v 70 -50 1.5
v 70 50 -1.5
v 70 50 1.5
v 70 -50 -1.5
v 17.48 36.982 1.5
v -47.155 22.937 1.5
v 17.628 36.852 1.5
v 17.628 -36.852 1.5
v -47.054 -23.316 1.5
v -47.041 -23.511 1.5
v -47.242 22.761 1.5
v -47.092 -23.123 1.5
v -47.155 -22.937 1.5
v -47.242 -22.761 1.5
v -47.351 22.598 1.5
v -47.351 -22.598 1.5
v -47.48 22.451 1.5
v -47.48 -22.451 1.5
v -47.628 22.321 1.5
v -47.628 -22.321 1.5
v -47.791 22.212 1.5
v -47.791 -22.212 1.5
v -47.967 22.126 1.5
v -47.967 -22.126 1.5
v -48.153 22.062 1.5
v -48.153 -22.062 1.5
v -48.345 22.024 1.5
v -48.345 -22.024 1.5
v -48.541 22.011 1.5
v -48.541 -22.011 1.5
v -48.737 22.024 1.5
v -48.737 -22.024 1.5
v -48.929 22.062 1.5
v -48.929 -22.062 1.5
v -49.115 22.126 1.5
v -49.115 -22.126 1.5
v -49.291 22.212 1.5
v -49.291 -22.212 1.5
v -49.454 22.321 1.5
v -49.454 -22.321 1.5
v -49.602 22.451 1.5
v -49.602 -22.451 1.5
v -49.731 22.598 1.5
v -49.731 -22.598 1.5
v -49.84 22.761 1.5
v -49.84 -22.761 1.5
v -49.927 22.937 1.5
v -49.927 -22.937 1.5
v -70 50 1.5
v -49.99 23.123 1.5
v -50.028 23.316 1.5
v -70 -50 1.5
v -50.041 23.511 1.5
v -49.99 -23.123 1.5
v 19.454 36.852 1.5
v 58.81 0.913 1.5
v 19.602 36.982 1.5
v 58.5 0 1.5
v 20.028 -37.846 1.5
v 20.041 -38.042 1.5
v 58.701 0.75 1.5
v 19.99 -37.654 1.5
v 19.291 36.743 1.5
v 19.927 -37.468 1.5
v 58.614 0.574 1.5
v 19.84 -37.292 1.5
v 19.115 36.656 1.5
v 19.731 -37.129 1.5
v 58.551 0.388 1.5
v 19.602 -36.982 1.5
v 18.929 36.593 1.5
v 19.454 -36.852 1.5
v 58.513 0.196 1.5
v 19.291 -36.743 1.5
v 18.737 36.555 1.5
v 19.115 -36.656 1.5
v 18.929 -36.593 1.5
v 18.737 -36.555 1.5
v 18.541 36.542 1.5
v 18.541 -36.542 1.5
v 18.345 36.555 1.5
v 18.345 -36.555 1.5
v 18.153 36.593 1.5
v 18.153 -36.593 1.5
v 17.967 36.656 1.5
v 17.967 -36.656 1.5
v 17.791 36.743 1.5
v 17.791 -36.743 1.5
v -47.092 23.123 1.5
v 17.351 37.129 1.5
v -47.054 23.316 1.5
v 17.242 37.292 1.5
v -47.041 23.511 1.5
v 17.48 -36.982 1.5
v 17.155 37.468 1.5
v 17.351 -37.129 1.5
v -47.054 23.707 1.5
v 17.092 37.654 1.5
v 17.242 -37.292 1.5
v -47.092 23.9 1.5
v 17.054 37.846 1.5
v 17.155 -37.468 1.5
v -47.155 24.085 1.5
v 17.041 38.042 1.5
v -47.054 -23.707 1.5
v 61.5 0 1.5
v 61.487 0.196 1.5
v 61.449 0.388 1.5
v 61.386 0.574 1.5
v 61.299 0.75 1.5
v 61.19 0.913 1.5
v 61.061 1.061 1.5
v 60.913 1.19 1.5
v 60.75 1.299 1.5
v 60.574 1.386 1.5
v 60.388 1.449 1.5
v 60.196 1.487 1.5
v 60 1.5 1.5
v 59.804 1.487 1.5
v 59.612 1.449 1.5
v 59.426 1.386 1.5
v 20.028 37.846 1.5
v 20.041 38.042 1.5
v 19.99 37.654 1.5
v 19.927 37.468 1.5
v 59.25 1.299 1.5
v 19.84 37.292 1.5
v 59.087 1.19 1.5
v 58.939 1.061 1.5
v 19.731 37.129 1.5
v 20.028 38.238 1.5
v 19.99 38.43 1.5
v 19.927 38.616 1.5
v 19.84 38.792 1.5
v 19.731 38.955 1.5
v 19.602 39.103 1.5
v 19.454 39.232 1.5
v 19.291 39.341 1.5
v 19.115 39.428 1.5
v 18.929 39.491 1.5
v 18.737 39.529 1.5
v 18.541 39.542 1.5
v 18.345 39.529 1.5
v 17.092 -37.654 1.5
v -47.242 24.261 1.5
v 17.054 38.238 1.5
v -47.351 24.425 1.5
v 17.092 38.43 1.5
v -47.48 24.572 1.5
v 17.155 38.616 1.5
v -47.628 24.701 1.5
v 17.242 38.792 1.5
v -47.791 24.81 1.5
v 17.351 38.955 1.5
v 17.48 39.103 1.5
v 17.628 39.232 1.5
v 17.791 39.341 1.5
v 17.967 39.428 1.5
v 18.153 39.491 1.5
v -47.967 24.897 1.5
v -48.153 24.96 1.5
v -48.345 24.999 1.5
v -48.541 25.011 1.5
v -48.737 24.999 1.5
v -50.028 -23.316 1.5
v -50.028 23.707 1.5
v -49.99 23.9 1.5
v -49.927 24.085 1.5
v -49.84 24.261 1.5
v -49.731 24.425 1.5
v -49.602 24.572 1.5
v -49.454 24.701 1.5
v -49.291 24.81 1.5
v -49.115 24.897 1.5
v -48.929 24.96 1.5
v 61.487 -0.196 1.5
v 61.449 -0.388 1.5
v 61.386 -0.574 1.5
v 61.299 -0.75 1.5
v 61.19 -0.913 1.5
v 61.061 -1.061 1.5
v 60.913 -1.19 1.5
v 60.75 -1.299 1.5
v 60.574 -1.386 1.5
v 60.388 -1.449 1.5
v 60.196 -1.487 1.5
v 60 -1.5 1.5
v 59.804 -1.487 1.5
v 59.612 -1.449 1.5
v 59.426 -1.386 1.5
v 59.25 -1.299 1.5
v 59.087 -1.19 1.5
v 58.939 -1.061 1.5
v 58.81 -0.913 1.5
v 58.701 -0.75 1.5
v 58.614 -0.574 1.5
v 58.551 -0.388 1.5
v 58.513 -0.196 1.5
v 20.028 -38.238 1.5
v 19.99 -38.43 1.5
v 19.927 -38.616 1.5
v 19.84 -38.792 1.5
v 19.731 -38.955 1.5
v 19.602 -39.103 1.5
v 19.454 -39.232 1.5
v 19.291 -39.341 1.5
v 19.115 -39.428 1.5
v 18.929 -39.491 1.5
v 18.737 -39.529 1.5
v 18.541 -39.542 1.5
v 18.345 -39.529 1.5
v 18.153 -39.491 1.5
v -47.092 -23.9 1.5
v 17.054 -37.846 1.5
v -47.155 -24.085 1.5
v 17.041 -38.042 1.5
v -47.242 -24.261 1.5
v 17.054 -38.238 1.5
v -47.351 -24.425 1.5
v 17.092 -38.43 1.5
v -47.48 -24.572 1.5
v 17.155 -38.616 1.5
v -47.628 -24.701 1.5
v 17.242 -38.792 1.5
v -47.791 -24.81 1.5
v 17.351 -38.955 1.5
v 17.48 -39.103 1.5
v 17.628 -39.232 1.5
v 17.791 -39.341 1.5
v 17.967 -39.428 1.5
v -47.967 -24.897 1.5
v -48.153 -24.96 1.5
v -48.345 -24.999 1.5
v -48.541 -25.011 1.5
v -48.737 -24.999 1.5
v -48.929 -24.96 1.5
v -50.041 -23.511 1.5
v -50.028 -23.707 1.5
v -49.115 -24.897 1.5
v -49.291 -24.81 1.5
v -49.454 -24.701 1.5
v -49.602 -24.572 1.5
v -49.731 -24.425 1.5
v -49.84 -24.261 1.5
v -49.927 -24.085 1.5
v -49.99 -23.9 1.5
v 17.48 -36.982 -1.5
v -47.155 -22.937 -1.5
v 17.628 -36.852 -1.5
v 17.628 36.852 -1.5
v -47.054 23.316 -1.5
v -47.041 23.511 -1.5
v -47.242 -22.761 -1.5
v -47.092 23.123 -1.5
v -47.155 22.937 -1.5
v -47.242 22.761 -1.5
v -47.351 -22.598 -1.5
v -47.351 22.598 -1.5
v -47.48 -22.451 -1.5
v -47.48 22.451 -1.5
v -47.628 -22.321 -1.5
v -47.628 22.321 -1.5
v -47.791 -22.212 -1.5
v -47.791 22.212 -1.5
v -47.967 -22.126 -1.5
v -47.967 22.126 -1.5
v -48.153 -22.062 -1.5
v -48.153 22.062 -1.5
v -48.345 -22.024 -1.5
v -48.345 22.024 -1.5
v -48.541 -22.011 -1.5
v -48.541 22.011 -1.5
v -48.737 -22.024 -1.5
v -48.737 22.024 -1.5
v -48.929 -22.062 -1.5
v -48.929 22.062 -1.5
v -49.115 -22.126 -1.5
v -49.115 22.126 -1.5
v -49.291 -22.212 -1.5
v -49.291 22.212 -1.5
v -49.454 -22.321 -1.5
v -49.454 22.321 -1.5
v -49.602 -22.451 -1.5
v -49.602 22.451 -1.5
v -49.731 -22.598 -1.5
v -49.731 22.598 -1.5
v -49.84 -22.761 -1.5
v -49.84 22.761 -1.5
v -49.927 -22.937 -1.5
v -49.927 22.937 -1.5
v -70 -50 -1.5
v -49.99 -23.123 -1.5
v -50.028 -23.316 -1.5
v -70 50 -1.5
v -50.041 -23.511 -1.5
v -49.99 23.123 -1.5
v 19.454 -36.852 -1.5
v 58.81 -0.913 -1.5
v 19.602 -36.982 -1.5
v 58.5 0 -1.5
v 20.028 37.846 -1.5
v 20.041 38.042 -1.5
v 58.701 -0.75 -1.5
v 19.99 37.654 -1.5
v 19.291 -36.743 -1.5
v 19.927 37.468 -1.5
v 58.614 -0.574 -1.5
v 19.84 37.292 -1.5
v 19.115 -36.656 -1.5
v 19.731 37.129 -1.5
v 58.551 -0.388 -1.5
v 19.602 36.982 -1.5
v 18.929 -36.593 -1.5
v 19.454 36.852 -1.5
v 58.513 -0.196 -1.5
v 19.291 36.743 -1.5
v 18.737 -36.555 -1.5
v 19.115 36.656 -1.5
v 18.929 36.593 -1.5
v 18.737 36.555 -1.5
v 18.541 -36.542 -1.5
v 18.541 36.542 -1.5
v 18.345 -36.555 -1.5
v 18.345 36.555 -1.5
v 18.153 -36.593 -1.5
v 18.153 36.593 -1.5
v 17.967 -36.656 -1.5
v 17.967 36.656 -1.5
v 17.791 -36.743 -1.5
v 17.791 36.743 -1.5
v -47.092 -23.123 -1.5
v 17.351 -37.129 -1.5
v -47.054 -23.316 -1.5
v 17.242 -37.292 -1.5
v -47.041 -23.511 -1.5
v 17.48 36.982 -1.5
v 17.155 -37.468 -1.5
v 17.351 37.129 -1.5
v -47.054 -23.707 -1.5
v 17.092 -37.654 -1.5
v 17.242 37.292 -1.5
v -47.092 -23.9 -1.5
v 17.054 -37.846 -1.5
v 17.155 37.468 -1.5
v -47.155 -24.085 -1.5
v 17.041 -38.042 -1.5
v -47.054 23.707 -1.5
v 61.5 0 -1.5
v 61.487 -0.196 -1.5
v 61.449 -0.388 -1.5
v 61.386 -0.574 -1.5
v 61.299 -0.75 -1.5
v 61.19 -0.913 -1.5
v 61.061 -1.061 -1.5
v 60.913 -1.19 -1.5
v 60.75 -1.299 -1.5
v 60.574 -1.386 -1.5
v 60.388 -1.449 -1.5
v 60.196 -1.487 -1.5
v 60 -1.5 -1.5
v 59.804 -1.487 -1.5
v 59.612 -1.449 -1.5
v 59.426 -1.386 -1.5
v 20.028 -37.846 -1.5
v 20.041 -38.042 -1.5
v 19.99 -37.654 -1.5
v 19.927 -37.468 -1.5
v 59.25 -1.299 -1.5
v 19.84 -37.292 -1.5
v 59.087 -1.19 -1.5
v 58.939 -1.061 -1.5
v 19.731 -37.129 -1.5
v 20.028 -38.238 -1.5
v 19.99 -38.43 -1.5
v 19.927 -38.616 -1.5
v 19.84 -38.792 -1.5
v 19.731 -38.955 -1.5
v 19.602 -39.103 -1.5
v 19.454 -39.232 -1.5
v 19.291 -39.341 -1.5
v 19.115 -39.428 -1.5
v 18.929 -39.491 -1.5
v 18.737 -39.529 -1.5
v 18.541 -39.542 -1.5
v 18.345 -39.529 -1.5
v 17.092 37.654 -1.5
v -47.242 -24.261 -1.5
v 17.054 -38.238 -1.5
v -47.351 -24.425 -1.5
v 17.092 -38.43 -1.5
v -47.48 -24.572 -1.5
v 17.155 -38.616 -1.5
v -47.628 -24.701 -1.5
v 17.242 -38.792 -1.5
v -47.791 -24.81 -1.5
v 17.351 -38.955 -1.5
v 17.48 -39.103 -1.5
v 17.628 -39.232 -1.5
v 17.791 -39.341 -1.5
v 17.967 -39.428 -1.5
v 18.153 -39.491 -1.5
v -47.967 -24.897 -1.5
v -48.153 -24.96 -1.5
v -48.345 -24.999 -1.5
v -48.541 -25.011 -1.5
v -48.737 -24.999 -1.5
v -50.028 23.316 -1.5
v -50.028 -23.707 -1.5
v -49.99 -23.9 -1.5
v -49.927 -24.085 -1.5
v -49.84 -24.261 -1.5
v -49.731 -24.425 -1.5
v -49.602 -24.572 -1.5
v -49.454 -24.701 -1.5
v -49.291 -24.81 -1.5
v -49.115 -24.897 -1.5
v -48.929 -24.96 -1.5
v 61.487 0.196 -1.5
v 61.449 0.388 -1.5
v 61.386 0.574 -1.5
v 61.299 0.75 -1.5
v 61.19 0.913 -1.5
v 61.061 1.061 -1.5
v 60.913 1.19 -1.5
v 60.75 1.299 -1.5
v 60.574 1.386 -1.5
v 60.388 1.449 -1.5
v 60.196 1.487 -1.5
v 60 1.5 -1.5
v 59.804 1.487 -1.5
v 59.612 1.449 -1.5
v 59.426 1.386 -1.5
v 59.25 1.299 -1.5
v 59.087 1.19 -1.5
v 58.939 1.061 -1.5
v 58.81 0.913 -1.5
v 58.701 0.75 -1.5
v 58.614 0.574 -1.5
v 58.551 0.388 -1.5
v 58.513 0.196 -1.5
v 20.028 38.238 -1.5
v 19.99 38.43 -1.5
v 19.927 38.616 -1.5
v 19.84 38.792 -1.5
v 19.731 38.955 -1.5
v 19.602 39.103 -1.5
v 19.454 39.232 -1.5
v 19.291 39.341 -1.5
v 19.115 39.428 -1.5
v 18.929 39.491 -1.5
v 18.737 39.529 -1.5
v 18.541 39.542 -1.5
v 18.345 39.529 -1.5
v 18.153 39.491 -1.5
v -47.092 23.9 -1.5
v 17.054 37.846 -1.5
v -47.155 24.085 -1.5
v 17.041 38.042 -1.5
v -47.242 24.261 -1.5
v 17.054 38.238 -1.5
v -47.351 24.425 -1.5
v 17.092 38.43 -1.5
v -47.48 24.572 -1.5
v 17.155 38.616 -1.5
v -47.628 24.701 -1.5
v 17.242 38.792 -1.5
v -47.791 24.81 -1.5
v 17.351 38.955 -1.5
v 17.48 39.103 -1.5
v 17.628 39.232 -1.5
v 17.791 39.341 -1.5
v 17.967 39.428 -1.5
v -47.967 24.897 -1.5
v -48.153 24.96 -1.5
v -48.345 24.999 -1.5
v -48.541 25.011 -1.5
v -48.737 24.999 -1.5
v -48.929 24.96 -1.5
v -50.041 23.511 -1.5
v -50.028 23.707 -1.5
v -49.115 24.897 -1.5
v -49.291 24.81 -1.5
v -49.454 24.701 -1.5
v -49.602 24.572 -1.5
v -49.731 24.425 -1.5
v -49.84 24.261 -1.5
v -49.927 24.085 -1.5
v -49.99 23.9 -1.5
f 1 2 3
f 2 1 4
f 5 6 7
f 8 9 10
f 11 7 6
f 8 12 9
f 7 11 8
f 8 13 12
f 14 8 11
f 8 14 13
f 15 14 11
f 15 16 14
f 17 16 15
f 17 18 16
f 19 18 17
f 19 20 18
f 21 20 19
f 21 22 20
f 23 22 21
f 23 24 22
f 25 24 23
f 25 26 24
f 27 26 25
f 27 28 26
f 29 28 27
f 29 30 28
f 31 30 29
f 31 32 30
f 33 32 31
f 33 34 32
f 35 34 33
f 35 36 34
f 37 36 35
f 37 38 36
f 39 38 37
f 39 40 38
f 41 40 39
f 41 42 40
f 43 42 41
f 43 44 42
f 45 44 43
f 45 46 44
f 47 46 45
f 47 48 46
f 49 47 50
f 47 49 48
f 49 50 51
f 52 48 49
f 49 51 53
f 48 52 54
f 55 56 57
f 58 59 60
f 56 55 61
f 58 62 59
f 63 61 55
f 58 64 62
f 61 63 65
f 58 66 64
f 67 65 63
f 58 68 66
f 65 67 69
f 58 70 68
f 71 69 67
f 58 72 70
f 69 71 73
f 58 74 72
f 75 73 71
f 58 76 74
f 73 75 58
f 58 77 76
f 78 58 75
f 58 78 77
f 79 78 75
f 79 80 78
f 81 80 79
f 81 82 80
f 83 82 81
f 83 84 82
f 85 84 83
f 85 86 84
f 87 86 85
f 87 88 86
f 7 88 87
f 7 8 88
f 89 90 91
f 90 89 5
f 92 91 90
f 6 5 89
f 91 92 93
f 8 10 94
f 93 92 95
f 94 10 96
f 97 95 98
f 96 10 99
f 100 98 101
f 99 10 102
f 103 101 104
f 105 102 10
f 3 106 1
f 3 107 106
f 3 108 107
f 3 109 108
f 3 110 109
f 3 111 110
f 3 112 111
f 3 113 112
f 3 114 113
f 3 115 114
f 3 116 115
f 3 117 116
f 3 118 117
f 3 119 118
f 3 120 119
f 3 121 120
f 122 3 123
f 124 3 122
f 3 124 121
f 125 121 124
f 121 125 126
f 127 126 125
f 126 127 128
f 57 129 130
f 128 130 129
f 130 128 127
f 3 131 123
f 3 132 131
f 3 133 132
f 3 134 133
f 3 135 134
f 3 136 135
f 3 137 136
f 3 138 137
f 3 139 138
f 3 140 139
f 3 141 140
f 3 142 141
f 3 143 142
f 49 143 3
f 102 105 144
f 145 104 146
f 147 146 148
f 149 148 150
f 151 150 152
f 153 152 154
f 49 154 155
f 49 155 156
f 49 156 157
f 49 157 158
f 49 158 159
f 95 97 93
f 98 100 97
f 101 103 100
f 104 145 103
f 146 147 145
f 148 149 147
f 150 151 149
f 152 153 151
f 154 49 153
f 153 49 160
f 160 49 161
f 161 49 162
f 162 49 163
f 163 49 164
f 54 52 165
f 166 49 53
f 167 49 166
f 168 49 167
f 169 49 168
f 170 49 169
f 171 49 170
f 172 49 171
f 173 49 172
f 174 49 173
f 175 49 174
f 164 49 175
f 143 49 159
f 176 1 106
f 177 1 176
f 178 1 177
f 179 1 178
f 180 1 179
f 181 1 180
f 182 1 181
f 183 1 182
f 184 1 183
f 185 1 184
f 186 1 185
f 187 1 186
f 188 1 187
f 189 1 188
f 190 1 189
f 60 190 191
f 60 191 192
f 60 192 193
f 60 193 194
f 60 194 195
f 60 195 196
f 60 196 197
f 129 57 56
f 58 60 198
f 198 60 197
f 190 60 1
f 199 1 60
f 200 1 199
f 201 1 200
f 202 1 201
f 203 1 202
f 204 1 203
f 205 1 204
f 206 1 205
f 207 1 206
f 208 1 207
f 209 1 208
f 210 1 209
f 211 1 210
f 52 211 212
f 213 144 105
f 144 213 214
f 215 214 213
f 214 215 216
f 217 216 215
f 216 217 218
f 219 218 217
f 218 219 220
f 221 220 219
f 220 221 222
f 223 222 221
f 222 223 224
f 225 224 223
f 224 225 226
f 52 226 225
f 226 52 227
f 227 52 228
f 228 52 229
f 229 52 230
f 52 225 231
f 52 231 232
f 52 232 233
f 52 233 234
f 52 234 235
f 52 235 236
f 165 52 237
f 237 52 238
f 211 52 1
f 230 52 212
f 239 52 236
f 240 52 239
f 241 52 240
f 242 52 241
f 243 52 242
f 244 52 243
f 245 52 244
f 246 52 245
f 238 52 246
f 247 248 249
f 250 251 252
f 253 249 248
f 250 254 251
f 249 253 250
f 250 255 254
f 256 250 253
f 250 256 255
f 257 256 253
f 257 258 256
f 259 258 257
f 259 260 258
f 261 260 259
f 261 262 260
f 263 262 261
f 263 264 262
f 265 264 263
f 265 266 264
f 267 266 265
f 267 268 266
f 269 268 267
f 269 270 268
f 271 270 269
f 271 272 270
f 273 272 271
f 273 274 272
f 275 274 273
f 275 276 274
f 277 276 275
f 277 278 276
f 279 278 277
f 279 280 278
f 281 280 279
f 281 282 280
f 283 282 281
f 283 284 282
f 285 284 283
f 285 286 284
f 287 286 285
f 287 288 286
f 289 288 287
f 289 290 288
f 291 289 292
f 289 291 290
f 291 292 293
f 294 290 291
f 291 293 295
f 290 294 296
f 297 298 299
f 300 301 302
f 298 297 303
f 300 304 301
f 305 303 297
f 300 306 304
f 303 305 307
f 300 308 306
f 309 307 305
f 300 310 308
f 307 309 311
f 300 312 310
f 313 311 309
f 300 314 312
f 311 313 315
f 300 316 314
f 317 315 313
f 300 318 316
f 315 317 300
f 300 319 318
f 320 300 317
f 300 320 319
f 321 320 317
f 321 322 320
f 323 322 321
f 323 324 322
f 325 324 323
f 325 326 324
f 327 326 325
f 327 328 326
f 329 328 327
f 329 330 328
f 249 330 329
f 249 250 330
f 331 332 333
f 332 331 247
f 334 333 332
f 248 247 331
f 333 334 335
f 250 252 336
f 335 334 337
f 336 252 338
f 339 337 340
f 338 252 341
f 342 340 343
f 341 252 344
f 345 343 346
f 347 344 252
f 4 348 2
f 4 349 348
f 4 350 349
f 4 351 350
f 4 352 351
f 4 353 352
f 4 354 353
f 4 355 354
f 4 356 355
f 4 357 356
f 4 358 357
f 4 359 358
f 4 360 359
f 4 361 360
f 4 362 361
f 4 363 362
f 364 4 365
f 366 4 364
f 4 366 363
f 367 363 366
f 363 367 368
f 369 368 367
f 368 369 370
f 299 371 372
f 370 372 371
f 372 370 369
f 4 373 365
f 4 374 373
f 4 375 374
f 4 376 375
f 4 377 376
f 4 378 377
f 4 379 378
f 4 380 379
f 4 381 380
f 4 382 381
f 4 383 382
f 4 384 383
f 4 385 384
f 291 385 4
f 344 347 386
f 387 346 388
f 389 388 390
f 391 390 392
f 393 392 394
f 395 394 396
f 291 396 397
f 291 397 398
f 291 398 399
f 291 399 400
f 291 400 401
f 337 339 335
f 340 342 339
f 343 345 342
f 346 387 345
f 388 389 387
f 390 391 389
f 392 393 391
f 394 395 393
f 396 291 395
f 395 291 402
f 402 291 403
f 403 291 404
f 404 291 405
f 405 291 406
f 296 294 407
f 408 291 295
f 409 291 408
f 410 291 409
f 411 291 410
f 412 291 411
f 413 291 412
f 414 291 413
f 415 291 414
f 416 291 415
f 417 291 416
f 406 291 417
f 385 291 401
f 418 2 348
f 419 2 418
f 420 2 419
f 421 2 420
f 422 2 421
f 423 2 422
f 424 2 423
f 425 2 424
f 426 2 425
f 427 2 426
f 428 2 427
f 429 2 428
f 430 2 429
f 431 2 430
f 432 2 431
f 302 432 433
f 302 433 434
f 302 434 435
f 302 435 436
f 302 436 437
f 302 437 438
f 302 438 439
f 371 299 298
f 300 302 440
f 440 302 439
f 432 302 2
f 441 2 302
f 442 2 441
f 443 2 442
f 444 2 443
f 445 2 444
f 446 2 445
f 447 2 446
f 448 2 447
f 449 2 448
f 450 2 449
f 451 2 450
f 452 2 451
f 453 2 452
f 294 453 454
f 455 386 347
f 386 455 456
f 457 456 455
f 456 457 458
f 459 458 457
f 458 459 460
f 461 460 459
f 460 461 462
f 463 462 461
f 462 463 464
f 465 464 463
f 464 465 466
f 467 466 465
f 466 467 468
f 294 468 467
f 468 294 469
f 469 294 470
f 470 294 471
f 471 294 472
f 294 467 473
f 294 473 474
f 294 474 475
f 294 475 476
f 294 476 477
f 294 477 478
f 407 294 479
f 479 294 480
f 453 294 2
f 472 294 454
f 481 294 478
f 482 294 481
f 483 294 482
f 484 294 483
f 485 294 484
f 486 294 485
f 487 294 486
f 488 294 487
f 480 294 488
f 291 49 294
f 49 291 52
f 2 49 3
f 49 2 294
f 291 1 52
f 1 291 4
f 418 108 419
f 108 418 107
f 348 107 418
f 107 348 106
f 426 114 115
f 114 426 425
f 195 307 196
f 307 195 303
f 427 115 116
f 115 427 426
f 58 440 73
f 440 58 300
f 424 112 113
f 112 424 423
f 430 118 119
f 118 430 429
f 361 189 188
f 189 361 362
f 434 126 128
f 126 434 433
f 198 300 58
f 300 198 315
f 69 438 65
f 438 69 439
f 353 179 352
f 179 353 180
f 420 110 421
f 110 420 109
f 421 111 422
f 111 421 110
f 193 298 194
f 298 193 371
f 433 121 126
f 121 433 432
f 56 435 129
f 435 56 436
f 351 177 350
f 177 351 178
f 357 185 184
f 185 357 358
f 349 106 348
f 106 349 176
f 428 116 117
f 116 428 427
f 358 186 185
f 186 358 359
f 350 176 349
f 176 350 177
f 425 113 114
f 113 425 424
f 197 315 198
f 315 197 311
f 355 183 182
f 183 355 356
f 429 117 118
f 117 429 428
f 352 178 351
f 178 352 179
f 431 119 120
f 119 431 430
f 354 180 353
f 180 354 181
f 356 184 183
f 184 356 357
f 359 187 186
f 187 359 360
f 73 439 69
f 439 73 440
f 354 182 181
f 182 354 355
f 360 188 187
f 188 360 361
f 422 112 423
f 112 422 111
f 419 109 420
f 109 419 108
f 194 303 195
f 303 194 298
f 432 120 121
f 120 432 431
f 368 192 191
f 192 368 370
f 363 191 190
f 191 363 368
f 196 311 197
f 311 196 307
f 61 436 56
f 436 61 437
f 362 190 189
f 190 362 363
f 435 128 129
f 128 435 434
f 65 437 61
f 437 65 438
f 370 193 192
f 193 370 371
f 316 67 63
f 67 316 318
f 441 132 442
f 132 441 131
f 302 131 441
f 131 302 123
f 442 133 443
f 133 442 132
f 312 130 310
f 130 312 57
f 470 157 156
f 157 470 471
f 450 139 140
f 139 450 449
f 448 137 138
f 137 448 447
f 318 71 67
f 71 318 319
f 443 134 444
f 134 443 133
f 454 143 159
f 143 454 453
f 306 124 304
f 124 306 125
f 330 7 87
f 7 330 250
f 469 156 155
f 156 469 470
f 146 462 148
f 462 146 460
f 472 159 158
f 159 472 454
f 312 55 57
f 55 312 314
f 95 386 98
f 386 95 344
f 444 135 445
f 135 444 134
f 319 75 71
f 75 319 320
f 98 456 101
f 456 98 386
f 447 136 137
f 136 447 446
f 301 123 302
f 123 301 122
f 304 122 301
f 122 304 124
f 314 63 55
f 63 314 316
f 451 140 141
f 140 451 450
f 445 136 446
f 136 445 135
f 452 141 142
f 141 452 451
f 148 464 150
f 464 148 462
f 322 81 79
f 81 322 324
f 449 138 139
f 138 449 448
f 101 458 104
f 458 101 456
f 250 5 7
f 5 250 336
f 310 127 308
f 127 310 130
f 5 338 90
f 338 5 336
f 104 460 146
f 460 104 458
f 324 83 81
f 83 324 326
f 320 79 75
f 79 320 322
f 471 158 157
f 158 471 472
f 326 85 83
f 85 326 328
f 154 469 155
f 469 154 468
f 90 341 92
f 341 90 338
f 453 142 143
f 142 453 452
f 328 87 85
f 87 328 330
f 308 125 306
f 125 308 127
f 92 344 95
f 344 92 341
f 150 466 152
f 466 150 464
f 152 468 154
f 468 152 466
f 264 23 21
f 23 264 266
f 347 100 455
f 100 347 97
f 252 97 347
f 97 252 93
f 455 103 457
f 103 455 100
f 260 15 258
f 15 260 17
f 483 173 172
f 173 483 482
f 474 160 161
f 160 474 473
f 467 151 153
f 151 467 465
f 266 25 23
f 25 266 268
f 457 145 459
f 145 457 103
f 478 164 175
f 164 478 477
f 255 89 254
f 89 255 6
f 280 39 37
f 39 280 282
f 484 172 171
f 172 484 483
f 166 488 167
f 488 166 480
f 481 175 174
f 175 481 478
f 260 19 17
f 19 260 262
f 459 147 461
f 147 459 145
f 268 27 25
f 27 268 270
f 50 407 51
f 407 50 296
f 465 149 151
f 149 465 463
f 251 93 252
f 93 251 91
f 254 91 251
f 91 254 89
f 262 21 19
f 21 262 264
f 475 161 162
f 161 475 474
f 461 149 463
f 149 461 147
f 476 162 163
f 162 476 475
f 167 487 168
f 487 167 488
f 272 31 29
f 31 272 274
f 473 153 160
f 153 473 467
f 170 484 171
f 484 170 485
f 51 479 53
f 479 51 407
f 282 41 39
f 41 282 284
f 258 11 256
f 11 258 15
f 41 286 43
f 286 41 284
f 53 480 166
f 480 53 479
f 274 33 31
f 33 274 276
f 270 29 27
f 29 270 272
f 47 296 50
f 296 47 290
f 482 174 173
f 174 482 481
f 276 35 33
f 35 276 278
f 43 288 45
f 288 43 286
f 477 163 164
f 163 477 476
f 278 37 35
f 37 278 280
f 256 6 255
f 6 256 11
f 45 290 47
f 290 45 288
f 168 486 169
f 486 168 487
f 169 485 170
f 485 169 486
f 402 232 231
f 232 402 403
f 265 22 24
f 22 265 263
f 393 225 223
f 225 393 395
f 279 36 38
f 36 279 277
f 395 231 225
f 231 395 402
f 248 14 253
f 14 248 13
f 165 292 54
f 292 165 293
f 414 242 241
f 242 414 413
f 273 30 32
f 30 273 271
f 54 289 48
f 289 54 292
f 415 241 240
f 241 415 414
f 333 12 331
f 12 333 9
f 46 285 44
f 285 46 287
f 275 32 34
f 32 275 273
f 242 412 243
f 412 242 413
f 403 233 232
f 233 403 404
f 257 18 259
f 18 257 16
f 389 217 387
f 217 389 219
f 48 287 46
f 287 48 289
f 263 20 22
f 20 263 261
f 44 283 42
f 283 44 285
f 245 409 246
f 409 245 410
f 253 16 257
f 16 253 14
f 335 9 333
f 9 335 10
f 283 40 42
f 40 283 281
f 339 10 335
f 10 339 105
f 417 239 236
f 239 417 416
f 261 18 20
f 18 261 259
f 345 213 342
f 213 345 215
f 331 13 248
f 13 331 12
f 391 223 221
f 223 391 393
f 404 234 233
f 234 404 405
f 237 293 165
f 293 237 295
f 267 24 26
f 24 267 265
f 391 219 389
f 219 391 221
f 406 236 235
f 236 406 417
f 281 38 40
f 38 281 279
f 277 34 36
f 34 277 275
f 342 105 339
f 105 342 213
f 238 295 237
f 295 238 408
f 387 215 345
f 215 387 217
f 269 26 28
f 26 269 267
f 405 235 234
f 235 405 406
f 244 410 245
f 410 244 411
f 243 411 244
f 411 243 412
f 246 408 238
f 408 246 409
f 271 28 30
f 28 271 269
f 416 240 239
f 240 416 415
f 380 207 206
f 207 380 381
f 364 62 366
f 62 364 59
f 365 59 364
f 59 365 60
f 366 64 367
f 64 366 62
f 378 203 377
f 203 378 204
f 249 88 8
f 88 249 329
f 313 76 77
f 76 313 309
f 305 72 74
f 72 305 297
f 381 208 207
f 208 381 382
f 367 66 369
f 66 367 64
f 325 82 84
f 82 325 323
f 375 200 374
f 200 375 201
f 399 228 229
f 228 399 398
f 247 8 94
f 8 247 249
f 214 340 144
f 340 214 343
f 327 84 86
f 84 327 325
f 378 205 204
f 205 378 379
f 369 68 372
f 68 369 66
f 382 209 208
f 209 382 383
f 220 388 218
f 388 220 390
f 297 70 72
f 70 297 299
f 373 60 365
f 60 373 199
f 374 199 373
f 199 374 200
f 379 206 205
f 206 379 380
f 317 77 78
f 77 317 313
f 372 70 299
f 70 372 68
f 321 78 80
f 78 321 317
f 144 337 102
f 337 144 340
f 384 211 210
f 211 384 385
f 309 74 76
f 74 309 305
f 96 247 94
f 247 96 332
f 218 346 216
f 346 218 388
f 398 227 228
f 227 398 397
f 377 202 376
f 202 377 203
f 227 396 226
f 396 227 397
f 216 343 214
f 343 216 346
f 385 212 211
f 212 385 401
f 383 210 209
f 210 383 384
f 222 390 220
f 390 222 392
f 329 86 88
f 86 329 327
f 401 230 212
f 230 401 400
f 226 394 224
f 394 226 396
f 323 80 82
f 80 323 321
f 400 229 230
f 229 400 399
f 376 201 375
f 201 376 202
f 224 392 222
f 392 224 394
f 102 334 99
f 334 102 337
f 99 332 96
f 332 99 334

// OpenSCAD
// ========================================
// a 140 x 100 x 3 mm plate with five 3 mm holes
// NeuroCAD canonical IR; dimensions are millimetres
// ========================================
$fn = 48;

difference() {
  cube(size=[140, 100, 3], center=true);
  translate([60, 0, 0]) {
    cylinder(r=1.5, h=5, center=true);
  }
  translate([18.5410196624968, 38.0422606518061, 0]) {
    cylinder(r=1.5, h=5, center=true);
  }
  translate([-48.5410196624968, 23.5114100916989, 0]) {
    cylinder(r=1.5, h=5, center=true);
  }
  translate([-48.5410196624969, -23.5114100916989, 0]) {
    cylinder(r=1.5, h=5, center=true);
  }
  translate([18.5410196624968, -38.0422606518061, 0]) {
    cylinder(r=1.5, h=5, center=true);
  }
}
